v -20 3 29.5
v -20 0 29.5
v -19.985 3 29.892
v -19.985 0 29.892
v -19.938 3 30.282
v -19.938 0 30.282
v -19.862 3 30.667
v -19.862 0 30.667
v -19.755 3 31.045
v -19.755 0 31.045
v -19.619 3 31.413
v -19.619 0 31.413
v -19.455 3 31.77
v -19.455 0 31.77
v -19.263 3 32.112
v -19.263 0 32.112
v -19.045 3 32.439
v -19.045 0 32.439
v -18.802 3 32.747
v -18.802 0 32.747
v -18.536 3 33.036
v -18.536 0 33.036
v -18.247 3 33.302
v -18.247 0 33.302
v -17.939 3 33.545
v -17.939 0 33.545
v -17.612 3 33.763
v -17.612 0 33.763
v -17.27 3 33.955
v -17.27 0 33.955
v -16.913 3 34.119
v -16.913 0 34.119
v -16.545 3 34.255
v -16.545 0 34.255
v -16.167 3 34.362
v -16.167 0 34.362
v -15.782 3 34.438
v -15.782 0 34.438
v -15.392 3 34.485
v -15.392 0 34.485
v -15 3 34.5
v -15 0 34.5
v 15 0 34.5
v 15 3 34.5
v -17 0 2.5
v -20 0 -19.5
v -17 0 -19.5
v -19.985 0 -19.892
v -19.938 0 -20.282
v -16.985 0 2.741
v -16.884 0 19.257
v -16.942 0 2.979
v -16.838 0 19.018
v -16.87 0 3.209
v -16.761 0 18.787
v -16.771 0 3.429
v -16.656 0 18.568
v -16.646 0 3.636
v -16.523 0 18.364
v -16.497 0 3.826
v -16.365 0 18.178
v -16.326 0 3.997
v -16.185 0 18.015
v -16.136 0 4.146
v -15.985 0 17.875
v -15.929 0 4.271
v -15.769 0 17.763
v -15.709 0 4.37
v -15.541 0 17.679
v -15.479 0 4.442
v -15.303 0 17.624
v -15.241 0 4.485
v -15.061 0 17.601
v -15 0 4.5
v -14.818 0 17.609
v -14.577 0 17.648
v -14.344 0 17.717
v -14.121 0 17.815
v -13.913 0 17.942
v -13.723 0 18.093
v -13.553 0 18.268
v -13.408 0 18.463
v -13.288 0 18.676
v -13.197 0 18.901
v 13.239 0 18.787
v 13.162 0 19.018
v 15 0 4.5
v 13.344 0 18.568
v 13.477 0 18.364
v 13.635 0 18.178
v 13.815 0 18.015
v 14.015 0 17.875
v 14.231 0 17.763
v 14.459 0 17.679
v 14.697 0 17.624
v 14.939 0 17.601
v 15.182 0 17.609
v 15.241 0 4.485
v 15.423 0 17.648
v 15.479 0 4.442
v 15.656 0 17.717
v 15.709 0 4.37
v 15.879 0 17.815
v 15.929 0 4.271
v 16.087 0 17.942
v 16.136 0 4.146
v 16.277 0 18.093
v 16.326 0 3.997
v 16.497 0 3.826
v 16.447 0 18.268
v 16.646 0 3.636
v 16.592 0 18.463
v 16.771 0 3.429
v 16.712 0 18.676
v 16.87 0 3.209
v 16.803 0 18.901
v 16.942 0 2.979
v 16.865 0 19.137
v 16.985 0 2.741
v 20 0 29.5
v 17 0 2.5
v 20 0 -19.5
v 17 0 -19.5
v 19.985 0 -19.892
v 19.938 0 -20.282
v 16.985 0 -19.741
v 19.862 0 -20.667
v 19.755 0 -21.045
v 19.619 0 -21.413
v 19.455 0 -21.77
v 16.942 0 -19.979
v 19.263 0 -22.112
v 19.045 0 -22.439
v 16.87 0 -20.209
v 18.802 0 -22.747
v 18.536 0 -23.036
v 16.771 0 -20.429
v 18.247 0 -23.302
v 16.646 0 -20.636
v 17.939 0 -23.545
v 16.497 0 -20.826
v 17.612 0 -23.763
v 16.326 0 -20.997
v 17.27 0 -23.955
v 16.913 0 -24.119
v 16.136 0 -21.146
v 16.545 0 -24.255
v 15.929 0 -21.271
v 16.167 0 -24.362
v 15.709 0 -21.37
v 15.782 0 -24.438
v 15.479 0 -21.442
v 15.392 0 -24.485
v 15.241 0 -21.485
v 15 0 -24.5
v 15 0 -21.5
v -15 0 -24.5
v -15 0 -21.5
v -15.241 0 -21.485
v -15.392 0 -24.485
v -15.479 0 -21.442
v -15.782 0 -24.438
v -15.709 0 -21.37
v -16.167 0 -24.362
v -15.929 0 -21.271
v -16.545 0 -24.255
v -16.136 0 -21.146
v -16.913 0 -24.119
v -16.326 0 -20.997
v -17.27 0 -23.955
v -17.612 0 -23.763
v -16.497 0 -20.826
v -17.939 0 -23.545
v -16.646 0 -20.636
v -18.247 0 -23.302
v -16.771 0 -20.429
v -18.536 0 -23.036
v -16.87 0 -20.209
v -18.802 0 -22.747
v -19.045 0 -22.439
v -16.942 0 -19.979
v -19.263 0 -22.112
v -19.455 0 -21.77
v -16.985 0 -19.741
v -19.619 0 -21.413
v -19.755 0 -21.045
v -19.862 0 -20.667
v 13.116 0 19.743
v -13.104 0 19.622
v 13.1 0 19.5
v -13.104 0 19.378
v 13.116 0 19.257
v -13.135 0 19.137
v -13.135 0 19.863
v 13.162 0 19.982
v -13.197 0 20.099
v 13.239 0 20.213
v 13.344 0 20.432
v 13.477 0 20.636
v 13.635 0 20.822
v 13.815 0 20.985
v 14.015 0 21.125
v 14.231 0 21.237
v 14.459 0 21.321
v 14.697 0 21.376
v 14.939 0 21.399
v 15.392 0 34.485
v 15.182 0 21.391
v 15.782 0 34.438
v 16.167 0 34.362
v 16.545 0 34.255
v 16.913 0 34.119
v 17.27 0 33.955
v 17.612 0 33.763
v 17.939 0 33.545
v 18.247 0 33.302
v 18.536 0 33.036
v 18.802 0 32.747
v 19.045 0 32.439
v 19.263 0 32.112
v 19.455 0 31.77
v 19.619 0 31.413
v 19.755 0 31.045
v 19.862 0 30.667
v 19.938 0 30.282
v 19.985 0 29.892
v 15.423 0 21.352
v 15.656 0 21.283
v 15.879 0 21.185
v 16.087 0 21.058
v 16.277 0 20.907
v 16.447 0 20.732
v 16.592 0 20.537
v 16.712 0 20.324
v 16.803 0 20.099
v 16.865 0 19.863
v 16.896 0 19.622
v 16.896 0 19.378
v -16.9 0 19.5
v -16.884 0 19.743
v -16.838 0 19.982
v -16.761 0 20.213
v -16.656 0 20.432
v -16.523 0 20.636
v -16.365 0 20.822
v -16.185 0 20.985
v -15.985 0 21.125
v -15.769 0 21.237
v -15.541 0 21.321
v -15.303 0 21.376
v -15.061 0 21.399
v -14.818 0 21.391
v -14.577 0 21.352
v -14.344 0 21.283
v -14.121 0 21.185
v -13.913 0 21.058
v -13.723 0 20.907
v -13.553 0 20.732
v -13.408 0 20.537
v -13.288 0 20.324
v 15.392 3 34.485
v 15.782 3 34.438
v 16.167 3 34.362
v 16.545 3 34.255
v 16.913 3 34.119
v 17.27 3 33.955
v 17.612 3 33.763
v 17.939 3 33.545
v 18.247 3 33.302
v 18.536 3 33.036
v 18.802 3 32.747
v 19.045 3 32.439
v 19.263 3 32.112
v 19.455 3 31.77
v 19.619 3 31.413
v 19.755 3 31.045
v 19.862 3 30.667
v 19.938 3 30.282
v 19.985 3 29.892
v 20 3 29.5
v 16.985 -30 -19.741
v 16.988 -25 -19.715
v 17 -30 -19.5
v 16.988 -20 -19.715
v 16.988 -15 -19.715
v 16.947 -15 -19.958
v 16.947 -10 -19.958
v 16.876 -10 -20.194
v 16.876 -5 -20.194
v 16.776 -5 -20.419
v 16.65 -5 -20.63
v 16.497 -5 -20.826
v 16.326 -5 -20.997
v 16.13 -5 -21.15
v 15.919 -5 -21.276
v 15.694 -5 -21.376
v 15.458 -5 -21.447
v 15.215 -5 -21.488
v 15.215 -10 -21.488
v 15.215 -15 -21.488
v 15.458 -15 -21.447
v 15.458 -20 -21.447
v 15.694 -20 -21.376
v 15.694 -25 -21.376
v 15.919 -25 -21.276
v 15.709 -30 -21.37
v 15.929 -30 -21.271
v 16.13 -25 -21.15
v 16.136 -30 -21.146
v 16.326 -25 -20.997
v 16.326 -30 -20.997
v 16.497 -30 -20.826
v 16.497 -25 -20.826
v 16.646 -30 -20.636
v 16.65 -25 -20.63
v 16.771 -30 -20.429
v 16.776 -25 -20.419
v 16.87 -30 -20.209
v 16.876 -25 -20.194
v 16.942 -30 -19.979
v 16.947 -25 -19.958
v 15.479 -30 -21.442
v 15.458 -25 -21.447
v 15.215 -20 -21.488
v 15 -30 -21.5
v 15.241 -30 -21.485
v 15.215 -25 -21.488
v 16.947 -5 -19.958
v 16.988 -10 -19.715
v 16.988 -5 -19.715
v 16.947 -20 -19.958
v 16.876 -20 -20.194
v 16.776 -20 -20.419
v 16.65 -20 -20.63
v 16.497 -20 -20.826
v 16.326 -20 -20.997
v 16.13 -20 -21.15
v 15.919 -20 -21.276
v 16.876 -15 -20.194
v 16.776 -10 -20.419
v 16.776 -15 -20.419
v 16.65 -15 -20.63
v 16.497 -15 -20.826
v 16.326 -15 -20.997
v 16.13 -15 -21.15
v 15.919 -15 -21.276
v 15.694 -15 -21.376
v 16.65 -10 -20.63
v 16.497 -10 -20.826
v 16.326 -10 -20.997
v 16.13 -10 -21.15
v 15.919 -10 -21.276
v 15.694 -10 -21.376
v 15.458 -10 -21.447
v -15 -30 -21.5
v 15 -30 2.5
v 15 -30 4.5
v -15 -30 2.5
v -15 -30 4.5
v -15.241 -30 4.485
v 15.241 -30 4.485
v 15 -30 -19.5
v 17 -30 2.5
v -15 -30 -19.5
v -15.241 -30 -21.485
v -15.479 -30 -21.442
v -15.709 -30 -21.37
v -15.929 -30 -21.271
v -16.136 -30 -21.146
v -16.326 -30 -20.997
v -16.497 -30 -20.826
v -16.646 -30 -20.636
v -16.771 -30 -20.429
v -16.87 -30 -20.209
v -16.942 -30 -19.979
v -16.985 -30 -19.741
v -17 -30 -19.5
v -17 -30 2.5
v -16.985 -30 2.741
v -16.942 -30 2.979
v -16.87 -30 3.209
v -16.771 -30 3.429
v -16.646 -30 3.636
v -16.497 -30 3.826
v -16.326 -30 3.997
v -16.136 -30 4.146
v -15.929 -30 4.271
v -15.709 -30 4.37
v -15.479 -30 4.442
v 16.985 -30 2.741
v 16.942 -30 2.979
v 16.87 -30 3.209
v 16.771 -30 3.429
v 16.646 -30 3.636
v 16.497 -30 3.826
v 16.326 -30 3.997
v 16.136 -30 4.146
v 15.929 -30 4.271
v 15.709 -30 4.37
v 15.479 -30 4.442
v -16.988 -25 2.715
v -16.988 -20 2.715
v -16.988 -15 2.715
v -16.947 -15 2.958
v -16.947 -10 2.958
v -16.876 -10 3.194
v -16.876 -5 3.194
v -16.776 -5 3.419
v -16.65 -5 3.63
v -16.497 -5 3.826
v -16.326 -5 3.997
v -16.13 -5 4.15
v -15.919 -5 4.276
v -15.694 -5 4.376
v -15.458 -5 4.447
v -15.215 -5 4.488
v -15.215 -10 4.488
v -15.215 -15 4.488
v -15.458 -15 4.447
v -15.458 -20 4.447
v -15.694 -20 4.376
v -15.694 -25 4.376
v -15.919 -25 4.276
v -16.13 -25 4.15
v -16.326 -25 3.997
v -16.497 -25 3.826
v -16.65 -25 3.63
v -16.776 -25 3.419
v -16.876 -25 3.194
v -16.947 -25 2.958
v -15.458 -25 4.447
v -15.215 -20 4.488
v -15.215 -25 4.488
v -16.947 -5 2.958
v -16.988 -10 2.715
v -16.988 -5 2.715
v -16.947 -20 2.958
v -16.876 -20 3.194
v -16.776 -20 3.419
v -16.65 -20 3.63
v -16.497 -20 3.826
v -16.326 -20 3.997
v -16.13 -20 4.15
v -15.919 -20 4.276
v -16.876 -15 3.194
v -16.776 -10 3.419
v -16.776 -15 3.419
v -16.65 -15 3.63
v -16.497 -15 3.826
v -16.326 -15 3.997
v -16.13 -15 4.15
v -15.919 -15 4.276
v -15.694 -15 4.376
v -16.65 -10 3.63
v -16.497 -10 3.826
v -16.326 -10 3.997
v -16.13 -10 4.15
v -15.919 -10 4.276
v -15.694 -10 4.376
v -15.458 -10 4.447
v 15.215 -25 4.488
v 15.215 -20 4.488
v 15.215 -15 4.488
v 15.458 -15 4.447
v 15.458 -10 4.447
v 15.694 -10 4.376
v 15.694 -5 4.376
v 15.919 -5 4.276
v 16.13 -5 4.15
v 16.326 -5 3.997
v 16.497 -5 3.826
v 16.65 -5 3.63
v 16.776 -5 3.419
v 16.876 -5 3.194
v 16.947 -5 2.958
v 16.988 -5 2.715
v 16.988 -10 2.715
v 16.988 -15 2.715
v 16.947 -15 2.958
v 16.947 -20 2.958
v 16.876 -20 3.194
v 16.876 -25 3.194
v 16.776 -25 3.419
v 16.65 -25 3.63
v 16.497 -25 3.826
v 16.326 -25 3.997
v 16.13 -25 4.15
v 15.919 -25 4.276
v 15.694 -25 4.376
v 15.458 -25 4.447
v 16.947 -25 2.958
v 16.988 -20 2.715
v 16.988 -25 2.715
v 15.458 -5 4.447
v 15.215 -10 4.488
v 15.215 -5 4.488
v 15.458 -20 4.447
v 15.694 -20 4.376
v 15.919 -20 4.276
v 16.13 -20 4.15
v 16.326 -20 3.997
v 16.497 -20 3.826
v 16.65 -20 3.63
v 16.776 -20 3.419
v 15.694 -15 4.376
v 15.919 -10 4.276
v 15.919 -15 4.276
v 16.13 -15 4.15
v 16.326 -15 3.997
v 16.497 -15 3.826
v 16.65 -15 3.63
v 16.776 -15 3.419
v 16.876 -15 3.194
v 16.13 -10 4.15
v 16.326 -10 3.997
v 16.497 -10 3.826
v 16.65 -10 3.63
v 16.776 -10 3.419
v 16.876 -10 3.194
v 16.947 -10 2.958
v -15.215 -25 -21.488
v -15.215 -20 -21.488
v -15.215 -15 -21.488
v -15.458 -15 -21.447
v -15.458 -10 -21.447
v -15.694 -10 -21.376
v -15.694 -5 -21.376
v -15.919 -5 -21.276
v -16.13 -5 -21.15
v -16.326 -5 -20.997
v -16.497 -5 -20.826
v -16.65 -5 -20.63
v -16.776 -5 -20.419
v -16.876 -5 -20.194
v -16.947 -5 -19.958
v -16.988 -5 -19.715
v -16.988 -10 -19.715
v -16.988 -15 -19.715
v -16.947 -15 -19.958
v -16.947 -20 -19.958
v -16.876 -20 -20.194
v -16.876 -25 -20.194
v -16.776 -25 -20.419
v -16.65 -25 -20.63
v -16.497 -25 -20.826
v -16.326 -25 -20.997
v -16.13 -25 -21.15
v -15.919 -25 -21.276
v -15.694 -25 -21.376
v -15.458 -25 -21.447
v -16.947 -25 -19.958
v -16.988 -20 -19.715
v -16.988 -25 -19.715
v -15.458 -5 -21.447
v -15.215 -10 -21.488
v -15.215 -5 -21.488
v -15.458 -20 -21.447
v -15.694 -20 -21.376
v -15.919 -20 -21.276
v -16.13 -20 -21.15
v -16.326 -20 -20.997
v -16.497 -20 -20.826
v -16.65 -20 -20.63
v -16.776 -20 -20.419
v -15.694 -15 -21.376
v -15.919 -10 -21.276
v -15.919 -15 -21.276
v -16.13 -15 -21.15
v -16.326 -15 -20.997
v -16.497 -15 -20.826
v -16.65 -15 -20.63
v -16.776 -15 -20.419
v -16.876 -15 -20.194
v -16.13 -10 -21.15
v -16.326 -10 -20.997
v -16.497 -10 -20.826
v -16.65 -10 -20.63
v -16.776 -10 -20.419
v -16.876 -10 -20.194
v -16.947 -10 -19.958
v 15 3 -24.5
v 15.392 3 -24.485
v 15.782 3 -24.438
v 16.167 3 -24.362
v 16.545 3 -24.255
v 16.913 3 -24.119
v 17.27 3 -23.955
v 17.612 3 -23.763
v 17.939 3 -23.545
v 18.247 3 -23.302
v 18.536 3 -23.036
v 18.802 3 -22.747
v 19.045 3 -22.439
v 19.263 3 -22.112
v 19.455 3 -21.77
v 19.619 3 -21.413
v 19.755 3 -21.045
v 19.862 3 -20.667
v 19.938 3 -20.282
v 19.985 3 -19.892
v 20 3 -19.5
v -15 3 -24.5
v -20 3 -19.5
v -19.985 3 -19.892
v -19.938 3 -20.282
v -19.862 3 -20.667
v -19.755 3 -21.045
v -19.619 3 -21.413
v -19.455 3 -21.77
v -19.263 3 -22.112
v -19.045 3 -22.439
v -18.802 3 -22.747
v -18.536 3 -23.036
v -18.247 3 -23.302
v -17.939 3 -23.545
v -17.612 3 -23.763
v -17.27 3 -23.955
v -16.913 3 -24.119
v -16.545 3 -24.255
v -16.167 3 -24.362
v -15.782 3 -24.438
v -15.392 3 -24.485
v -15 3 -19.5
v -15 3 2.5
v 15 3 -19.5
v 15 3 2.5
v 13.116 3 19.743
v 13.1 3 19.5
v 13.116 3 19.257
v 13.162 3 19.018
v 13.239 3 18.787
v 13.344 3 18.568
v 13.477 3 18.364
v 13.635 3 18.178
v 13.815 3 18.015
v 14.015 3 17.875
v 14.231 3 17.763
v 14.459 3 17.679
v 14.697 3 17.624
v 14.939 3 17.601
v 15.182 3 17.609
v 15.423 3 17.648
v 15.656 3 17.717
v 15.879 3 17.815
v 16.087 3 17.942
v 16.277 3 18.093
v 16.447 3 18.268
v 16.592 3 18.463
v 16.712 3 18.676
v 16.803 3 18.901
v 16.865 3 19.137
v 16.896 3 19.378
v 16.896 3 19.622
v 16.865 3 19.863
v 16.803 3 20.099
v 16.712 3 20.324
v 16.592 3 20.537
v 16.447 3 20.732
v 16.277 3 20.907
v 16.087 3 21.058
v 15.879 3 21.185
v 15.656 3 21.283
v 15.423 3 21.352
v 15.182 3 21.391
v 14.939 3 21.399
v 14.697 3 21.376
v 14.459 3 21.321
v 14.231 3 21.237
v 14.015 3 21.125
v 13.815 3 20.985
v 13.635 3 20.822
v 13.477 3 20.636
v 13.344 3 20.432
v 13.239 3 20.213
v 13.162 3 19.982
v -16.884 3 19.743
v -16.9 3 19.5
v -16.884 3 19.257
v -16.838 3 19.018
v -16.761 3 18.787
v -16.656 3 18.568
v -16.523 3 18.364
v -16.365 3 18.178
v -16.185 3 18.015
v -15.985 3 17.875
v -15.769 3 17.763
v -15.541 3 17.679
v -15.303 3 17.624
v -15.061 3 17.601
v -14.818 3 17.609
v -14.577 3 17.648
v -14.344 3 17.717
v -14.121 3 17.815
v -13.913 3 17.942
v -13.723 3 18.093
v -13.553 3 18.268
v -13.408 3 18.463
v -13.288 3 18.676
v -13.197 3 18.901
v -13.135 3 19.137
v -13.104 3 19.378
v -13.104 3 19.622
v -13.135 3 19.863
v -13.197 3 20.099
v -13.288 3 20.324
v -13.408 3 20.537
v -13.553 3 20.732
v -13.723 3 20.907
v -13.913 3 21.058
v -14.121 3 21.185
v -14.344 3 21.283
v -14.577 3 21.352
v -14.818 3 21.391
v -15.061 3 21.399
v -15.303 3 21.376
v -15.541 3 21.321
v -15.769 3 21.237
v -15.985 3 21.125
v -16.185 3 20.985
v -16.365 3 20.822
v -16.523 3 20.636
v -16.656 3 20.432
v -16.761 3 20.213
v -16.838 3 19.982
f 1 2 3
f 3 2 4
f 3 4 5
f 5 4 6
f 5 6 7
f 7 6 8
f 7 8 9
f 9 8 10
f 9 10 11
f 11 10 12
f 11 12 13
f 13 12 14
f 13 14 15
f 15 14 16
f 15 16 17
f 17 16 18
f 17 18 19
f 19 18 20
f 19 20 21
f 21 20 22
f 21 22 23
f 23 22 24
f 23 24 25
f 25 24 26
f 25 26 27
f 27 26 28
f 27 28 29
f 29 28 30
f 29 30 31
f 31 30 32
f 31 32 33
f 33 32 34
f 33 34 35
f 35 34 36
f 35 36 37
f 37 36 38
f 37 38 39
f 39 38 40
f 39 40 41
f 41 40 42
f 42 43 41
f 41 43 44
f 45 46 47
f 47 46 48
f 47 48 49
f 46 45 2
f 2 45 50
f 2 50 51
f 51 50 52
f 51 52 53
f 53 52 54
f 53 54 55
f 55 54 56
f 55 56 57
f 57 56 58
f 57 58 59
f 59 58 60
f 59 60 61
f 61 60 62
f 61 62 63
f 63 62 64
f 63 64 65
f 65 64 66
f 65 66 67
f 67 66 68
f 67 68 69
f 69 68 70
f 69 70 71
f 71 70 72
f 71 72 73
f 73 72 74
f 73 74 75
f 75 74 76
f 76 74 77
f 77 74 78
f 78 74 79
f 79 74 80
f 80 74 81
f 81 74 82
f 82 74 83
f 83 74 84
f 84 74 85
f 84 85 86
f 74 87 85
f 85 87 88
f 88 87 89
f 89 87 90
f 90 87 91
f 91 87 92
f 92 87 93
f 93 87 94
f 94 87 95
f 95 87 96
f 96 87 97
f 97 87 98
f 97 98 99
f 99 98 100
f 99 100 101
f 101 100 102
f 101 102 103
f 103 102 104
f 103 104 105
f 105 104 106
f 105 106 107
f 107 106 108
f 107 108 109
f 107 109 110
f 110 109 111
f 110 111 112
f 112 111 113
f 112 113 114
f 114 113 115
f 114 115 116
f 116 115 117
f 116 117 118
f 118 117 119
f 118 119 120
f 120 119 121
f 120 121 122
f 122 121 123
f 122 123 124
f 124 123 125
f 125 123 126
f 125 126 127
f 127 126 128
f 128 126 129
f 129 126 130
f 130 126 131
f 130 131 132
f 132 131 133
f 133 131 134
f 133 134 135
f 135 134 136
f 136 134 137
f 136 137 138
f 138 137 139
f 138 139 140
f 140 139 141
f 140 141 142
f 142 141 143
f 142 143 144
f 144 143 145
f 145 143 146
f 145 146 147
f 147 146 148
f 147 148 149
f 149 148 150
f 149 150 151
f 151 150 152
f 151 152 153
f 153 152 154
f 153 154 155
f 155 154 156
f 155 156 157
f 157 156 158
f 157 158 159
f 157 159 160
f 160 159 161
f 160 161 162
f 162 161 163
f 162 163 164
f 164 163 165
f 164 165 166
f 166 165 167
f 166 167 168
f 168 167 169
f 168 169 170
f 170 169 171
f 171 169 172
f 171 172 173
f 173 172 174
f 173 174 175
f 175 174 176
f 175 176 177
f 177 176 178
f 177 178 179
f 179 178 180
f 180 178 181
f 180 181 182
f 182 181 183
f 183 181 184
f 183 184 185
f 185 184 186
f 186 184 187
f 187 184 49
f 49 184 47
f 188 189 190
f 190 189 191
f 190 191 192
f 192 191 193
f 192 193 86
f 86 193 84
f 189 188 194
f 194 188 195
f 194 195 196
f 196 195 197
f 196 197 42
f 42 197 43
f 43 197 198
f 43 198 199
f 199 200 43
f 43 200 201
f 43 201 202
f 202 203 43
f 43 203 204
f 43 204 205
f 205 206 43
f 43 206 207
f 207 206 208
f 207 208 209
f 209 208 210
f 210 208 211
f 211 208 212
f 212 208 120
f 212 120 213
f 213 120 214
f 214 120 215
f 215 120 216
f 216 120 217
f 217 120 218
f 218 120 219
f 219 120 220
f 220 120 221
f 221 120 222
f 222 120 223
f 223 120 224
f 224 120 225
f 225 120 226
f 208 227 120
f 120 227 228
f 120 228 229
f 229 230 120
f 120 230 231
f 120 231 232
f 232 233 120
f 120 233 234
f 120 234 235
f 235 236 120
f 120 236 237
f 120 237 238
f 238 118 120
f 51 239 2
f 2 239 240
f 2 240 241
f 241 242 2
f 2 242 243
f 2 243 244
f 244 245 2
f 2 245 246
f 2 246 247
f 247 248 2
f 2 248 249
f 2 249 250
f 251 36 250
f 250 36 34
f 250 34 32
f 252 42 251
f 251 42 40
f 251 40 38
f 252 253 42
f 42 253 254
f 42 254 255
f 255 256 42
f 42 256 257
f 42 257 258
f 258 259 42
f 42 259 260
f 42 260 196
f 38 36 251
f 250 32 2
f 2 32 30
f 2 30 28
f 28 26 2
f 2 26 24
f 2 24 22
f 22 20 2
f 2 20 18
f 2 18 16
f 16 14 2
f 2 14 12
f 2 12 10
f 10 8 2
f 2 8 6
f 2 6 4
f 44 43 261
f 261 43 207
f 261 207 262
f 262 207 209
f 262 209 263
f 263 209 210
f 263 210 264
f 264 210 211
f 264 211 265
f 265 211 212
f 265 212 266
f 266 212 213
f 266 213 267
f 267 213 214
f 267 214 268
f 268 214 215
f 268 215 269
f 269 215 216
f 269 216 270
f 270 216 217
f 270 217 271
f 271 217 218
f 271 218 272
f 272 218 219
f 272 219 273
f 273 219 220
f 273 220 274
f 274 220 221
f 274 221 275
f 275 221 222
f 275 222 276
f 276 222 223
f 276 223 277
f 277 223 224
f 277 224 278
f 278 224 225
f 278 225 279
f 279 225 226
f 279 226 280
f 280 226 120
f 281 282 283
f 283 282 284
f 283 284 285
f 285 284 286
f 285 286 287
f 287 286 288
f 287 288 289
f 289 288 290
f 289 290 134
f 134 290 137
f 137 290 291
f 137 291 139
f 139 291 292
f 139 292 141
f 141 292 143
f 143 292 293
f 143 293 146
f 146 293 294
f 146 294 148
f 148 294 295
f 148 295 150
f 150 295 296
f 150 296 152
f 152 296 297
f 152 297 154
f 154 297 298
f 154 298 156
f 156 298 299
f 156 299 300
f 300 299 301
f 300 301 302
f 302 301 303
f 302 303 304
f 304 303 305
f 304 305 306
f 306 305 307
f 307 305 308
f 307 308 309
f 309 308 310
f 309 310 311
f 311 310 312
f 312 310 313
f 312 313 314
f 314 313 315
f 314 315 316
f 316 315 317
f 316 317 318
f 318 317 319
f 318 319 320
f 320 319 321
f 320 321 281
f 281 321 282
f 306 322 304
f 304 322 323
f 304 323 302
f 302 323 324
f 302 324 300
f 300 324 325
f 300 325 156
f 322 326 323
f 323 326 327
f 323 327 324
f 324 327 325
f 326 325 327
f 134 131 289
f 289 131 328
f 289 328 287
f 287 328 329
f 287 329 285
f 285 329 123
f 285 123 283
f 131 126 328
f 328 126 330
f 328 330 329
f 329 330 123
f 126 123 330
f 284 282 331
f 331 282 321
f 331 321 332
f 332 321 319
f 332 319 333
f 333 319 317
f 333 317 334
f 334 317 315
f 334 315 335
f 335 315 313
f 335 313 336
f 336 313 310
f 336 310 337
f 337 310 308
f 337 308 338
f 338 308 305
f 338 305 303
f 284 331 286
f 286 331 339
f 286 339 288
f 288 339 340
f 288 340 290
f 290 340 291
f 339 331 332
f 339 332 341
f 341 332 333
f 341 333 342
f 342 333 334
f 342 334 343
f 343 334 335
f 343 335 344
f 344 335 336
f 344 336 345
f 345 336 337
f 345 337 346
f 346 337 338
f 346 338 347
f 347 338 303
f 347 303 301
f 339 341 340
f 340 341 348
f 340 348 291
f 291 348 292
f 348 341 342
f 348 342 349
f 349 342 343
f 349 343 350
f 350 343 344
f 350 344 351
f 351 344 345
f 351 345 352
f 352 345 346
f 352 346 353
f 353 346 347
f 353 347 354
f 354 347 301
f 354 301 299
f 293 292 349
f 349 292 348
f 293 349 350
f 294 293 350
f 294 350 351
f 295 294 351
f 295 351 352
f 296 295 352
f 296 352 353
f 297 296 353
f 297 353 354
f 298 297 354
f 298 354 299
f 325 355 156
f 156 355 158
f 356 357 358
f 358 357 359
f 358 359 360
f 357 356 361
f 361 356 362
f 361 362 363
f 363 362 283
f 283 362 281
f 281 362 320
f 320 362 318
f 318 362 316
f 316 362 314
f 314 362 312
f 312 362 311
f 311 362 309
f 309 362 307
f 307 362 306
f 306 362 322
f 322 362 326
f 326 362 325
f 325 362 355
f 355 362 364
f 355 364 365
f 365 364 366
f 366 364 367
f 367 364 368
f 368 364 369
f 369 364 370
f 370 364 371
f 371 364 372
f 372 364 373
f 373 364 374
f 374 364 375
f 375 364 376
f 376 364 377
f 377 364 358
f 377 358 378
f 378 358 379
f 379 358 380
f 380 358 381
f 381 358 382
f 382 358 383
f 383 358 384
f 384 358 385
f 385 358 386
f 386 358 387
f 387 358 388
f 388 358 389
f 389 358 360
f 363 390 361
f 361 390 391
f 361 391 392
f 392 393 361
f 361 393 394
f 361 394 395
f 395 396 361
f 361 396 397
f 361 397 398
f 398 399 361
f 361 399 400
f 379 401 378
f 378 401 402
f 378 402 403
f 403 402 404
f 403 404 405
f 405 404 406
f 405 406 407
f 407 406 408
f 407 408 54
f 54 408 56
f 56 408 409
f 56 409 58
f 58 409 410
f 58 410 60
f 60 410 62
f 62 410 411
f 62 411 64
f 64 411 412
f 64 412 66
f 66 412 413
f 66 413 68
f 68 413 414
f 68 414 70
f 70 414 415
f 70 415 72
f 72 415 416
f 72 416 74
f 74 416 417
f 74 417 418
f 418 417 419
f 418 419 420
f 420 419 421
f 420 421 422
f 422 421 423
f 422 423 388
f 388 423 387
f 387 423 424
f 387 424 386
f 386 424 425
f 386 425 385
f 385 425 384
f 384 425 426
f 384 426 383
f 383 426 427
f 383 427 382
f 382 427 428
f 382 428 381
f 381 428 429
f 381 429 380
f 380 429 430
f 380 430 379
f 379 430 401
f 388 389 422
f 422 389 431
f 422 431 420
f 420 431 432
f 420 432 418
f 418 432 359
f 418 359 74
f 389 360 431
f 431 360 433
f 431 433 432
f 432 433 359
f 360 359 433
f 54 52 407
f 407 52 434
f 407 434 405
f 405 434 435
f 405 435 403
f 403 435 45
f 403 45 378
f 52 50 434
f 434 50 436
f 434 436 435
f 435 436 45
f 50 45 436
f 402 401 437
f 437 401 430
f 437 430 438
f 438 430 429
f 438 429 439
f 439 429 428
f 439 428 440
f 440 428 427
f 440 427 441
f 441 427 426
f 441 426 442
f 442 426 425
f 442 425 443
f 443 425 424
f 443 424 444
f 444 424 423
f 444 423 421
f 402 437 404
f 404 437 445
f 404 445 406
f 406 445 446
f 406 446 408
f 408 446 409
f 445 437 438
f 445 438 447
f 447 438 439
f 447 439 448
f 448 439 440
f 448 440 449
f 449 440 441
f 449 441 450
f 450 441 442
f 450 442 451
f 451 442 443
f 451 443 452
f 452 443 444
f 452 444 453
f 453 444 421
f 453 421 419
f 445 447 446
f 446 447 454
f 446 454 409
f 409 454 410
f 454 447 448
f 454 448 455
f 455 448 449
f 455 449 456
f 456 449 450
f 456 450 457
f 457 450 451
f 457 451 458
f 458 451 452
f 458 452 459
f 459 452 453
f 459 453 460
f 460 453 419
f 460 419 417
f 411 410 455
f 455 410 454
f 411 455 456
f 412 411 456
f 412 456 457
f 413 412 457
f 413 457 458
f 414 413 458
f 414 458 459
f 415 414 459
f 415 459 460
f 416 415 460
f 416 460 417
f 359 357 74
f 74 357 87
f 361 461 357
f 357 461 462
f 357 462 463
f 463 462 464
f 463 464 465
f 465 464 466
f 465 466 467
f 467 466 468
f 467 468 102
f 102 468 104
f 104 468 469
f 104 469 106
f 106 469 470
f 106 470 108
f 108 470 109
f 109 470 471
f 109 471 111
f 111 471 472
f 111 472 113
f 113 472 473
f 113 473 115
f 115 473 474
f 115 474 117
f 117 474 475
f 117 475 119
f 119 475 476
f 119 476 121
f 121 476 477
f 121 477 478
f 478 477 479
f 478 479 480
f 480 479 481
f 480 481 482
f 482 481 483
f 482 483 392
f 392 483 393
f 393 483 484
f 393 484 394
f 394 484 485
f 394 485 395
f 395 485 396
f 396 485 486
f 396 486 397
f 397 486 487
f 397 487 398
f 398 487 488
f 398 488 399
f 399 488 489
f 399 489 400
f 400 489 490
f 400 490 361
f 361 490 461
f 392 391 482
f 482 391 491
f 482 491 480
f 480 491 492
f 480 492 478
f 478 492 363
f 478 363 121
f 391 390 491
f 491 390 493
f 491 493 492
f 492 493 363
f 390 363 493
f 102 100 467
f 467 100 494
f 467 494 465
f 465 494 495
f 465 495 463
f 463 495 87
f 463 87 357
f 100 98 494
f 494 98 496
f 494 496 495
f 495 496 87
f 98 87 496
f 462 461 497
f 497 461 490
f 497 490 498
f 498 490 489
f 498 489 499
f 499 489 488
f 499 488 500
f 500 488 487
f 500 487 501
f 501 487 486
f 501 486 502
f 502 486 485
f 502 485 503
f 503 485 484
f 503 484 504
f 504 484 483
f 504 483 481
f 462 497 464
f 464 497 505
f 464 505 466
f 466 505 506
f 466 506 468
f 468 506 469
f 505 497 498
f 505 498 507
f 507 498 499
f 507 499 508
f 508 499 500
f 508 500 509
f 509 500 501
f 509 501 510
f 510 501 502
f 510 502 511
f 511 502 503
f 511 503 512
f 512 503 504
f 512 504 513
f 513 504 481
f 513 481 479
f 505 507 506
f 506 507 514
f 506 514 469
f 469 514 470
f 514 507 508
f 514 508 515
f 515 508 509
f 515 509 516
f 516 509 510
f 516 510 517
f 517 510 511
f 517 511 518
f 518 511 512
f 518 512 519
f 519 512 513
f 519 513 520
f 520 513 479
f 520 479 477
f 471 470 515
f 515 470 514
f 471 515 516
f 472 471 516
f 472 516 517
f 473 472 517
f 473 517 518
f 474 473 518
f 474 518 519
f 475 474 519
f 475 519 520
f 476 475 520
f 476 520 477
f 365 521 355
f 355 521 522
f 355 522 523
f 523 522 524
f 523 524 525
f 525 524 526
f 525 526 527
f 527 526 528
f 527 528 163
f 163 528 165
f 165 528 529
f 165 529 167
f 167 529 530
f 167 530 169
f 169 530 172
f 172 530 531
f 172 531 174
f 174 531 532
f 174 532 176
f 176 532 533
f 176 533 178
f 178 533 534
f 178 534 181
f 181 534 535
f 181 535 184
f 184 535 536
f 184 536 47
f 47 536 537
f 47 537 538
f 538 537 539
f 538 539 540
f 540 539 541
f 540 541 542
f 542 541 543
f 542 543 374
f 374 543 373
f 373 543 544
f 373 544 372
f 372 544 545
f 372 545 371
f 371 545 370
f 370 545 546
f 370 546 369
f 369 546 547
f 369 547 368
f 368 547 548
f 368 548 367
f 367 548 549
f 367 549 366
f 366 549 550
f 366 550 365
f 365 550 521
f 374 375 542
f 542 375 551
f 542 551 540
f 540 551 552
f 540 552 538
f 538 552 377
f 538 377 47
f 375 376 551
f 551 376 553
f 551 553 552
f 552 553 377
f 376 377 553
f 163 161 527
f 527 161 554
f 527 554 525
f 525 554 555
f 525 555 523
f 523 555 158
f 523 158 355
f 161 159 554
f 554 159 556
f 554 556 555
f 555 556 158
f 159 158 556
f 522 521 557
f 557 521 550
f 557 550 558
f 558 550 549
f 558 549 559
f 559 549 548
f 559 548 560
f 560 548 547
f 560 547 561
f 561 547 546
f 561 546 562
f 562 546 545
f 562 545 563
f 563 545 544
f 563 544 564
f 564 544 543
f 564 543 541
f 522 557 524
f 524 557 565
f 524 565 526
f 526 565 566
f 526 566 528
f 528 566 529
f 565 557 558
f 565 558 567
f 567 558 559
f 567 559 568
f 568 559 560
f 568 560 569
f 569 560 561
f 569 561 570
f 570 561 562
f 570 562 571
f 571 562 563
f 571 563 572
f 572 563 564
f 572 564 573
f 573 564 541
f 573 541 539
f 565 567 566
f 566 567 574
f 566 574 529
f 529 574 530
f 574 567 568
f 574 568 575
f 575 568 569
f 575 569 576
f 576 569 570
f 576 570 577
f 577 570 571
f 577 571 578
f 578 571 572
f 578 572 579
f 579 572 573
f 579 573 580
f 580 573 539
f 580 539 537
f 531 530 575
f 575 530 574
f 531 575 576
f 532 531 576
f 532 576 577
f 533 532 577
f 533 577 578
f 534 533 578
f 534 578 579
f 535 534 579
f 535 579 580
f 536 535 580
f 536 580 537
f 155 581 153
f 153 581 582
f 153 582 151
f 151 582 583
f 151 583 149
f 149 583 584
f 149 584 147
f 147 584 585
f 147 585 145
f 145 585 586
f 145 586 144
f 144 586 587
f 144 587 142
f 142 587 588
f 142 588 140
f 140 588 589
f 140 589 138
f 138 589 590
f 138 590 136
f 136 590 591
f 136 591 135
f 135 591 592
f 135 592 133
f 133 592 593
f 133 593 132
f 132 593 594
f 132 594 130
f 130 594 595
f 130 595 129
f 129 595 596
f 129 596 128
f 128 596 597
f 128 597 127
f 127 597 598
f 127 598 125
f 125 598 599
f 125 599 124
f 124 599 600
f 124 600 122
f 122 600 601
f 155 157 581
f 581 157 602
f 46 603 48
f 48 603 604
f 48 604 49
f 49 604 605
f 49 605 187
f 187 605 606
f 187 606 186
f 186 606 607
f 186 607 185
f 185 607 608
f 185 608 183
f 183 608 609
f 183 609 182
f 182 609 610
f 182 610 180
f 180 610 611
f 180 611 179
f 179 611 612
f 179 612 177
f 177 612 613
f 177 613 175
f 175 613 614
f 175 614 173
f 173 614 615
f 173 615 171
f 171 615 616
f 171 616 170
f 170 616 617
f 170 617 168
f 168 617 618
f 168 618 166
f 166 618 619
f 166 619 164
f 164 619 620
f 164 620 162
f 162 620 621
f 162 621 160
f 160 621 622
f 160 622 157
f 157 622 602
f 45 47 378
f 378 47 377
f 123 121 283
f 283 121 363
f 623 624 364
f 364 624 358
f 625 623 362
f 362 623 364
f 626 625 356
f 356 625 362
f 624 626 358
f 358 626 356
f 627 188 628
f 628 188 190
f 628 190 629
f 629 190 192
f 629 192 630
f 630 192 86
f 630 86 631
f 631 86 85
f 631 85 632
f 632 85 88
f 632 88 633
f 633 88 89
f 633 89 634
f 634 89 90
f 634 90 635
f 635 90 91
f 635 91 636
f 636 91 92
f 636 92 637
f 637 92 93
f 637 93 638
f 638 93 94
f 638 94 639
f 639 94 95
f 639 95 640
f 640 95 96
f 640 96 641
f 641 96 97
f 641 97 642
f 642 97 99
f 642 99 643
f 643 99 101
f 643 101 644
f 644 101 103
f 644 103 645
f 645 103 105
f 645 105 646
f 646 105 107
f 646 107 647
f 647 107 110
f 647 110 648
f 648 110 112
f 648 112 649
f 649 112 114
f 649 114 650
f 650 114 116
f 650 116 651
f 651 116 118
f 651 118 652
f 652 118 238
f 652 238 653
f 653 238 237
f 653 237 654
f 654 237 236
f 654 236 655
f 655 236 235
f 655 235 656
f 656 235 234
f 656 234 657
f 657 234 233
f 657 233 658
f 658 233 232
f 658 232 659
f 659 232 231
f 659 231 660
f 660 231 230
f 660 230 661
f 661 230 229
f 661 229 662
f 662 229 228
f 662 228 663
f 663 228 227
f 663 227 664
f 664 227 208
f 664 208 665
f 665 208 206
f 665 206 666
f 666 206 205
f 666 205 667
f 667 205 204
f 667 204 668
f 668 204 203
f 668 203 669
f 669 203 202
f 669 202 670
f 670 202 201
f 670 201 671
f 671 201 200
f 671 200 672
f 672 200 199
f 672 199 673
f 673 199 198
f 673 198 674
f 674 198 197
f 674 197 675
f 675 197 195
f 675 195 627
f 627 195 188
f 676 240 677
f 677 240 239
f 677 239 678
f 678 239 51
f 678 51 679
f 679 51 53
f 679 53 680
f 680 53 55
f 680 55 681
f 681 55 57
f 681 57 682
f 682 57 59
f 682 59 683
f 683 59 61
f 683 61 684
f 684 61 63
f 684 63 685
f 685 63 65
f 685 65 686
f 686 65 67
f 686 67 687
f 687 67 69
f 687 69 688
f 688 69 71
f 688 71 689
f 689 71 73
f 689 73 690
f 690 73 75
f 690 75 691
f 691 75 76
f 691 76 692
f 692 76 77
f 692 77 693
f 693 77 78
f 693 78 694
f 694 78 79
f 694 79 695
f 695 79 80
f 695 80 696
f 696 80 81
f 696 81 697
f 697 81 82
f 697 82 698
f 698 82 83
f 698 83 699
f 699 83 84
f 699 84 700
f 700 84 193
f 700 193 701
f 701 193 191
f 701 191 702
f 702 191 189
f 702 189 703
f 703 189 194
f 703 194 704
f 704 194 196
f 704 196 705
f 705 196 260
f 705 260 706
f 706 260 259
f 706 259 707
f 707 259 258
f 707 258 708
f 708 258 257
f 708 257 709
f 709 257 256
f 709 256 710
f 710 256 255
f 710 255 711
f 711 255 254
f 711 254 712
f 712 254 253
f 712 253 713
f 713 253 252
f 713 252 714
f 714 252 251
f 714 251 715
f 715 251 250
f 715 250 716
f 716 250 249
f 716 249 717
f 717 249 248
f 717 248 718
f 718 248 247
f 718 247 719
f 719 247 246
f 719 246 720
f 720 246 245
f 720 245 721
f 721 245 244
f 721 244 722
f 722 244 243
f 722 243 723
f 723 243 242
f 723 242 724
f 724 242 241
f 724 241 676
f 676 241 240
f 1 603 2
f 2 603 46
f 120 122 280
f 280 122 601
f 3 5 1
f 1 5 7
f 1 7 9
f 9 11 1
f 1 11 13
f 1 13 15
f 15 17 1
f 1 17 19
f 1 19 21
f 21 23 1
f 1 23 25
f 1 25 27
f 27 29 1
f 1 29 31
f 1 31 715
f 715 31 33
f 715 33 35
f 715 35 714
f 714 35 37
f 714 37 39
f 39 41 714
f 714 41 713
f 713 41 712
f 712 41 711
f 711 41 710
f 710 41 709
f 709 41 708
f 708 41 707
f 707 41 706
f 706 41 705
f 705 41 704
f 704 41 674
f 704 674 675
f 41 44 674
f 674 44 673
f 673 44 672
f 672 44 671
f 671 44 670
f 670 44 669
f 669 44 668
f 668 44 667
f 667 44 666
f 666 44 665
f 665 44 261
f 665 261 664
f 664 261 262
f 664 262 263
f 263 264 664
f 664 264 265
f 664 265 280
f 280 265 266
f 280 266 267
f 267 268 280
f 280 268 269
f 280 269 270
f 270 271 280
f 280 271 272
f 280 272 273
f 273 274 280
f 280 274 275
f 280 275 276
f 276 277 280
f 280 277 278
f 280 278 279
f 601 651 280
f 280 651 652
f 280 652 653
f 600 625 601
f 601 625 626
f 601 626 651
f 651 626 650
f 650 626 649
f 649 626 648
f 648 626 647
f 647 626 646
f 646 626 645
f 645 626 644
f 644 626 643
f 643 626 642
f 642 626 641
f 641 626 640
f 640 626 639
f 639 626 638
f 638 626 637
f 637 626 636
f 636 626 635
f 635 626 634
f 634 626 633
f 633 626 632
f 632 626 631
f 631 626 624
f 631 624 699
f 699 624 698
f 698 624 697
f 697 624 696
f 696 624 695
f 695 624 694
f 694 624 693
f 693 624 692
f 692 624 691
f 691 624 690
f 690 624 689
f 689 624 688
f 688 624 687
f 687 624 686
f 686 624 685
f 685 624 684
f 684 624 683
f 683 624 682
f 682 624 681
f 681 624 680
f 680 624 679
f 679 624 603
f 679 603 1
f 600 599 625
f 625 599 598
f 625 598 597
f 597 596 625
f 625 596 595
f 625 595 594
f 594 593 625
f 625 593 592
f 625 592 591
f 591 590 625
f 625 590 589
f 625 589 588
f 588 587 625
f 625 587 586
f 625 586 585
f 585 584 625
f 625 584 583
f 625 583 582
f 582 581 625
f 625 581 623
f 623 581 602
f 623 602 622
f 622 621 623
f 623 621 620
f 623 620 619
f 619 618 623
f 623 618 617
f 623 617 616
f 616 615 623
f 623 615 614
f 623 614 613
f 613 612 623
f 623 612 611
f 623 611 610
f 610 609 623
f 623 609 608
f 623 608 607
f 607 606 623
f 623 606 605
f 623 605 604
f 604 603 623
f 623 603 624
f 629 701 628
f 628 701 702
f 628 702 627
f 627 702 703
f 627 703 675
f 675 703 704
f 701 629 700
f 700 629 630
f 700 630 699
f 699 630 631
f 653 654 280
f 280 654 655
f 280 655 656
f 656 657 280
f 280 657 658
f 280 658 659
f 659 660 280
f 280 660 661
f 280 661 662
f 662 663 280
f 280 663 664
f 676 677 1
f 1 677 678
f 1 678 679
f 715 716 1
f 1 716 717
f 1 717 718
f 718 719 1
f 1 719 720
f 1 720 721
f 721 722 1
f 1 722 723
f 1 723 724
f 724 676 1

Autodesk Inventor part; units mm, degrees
ref_plane "YZ Plane" through (0, 0, 0) normal (1, 0, 0) x (0, 1, 0)
ref_plane "XZ Plane" through (0, 0, 0) normal (0, 1, 0) x (-1, 0, 0)
ref_plane "XY Plane" through (0, 0, 0) normal (0, 0, 1) x (1, 0, 0)
sketch "Sketch1" plane through (0, 0, 0) normal (0, 1, 0) x (-1, 0, 0)
  line L0 (-20, 24.5) -> (20, 24.5)
  line L1 (20, 24.5) -> (20, -24.5)
  line L2 (20, -24.5) -> (-20, -24.5)
  line L3 (-20, -24.5) -> (-20, 24.5)
  line L4 (-20, 24.5) -> (20, -24.5) construction
  line L5 (20, 24.5) -> (-20, -24.5) construction
  circle A0 centre (15, 19.5) radius 1.9
  circle A1 centre (-15, 19.5) radius 1.9
  line L6 (15, 2.5) -> (-15, 2.5)
  line L7 (-15, 2.5) -> (-15, -19.5)
  line L8 (-15, -19.5) -> (15, -19.5)
  line L9 (15, -19.5) -> (15, 2.5)
  line L10 (15, 2.5) -> (-15, -19.5) construction
  line L11 (-15, 2.5) -> (15, -19.5) construction
  point P0 (0, 0)
  point P1 (15, 17.5)
  point P2 (-15, 17.5)
  point P3 (0, -8.5)
  point P4 (0, -8.5)
  point P5 (0, 0)
  dimension "d0" = 30
  dimension "d1" = 3.8
  dimension "d4" = 5
  dimension "d5" = 15
  dimension "d6" = 22
  dimension "d7" = 30
  dimension "d9" = 49
  dimension "d12" = 40
  dimension "d21" = 22
extrude "Extrusion1" add sketch "Sketch1" along normal blind 3
sketch "Sketch2" plane through (0, 0, 0) normal (0, -1, 0) x (1, 0, 0)
  point P0 (0, 0)
sketch "Sketch3" plane through (0, 0, 0) normal (0, -1, 0) x (1, 0, 0)
  line L0 (17, -21.5) -> (-17, -21.5)
  line L1 (-17, -21.5) -> (-17, 4.5)
  line L2 (-17, 4.5) -> (17, 4.5)
  line L3 (17, 4.5) -> (17, -21.5)
  line L4 (17, -21.5) -> (-17, 4.5) construction
  line L5 (-17, -21.5) -> (17, 4.5) construction
  line L6 (-15, -19.5) -> (-15, 2.5) projected
  line L7 (15, 2.5) -> (15, -19.5) projected
  line L8 (15, -19.5) -> (-15, -19.5) projected
  line L9 (-15, 2.5) -> (15, 2.5) projected
  line L10 (15, 2.5) -> (-15, 2.5) projected
  line L11 (15, -19.5) -> (-15, -19.5)
  line L12 (-15, -19.5) -> (-15, 2.5)
  line L13 (-15, 2.5) -> (15, 2.5)
  line L14 (15, 2.5) -> (15, -19.5)
  line L15 (15, -19.5) -> (-15, 2.5) construction
  line L16 (-15, -19.5) -> (15, 2.5) construction
  point P0 (0, 0)
  point P1 (0, -8.5)
  point P2 (0, -8.5)
  dimension "d13" = 2
  dimension "d14" = 2
  dimension "d15" = 2
  dimension "d16" = 2
extrude "Extrusion2" add sketch "Sketch3" along normal blind 30
fillet "Fillet1" radius 5 4 edges at (-20, 1.5, -24.5) (-20, 1.5, 24.5) (20, 1.5, 24.5) (20, 1.5, -24.5)
fillet "Fillet2" radius 2 4 edges at (-17, -15, -21.5) (17, -15, 4.5) (-17, -15, 4.5) (17, -15, -21.5)
sketch "Sketch4" plane through (0, 3, 0) normal (0, 1, 0) x (1, 0, 0)
  line L0 (-15, -24.5) -> (15, -24.5) projected
  arc A0 (15, -24.5) -> (20, -19.5) centre (15, -19.5) ccw projected
  arc A1 (-20, -19.5) -> (-15, -24.5) centre (-15, -19.5) ccw projected
  line L1 (20, -19.5) -> (-20, -19.5)
  line L2 (-20, -19.5) -> (-20, -34.5)
  line L3 (-20, -34.5) -> (20, -34.5)
  line L4 (20, -34.5) -> (20, -19.5)
  point P0 (0, 0)
  dimension "d22" = 15
extrude "Extrusion3" add sketch "Sketch4" against normal up to surface (3 mm away) contours L0 A0 L4 L3 L2 A1
fillet "Fillet3" radius 5 2 edges at (20, 1.5, 34.5) (-20, 1.5, 34.5)
properties part number "ButtonBox"
